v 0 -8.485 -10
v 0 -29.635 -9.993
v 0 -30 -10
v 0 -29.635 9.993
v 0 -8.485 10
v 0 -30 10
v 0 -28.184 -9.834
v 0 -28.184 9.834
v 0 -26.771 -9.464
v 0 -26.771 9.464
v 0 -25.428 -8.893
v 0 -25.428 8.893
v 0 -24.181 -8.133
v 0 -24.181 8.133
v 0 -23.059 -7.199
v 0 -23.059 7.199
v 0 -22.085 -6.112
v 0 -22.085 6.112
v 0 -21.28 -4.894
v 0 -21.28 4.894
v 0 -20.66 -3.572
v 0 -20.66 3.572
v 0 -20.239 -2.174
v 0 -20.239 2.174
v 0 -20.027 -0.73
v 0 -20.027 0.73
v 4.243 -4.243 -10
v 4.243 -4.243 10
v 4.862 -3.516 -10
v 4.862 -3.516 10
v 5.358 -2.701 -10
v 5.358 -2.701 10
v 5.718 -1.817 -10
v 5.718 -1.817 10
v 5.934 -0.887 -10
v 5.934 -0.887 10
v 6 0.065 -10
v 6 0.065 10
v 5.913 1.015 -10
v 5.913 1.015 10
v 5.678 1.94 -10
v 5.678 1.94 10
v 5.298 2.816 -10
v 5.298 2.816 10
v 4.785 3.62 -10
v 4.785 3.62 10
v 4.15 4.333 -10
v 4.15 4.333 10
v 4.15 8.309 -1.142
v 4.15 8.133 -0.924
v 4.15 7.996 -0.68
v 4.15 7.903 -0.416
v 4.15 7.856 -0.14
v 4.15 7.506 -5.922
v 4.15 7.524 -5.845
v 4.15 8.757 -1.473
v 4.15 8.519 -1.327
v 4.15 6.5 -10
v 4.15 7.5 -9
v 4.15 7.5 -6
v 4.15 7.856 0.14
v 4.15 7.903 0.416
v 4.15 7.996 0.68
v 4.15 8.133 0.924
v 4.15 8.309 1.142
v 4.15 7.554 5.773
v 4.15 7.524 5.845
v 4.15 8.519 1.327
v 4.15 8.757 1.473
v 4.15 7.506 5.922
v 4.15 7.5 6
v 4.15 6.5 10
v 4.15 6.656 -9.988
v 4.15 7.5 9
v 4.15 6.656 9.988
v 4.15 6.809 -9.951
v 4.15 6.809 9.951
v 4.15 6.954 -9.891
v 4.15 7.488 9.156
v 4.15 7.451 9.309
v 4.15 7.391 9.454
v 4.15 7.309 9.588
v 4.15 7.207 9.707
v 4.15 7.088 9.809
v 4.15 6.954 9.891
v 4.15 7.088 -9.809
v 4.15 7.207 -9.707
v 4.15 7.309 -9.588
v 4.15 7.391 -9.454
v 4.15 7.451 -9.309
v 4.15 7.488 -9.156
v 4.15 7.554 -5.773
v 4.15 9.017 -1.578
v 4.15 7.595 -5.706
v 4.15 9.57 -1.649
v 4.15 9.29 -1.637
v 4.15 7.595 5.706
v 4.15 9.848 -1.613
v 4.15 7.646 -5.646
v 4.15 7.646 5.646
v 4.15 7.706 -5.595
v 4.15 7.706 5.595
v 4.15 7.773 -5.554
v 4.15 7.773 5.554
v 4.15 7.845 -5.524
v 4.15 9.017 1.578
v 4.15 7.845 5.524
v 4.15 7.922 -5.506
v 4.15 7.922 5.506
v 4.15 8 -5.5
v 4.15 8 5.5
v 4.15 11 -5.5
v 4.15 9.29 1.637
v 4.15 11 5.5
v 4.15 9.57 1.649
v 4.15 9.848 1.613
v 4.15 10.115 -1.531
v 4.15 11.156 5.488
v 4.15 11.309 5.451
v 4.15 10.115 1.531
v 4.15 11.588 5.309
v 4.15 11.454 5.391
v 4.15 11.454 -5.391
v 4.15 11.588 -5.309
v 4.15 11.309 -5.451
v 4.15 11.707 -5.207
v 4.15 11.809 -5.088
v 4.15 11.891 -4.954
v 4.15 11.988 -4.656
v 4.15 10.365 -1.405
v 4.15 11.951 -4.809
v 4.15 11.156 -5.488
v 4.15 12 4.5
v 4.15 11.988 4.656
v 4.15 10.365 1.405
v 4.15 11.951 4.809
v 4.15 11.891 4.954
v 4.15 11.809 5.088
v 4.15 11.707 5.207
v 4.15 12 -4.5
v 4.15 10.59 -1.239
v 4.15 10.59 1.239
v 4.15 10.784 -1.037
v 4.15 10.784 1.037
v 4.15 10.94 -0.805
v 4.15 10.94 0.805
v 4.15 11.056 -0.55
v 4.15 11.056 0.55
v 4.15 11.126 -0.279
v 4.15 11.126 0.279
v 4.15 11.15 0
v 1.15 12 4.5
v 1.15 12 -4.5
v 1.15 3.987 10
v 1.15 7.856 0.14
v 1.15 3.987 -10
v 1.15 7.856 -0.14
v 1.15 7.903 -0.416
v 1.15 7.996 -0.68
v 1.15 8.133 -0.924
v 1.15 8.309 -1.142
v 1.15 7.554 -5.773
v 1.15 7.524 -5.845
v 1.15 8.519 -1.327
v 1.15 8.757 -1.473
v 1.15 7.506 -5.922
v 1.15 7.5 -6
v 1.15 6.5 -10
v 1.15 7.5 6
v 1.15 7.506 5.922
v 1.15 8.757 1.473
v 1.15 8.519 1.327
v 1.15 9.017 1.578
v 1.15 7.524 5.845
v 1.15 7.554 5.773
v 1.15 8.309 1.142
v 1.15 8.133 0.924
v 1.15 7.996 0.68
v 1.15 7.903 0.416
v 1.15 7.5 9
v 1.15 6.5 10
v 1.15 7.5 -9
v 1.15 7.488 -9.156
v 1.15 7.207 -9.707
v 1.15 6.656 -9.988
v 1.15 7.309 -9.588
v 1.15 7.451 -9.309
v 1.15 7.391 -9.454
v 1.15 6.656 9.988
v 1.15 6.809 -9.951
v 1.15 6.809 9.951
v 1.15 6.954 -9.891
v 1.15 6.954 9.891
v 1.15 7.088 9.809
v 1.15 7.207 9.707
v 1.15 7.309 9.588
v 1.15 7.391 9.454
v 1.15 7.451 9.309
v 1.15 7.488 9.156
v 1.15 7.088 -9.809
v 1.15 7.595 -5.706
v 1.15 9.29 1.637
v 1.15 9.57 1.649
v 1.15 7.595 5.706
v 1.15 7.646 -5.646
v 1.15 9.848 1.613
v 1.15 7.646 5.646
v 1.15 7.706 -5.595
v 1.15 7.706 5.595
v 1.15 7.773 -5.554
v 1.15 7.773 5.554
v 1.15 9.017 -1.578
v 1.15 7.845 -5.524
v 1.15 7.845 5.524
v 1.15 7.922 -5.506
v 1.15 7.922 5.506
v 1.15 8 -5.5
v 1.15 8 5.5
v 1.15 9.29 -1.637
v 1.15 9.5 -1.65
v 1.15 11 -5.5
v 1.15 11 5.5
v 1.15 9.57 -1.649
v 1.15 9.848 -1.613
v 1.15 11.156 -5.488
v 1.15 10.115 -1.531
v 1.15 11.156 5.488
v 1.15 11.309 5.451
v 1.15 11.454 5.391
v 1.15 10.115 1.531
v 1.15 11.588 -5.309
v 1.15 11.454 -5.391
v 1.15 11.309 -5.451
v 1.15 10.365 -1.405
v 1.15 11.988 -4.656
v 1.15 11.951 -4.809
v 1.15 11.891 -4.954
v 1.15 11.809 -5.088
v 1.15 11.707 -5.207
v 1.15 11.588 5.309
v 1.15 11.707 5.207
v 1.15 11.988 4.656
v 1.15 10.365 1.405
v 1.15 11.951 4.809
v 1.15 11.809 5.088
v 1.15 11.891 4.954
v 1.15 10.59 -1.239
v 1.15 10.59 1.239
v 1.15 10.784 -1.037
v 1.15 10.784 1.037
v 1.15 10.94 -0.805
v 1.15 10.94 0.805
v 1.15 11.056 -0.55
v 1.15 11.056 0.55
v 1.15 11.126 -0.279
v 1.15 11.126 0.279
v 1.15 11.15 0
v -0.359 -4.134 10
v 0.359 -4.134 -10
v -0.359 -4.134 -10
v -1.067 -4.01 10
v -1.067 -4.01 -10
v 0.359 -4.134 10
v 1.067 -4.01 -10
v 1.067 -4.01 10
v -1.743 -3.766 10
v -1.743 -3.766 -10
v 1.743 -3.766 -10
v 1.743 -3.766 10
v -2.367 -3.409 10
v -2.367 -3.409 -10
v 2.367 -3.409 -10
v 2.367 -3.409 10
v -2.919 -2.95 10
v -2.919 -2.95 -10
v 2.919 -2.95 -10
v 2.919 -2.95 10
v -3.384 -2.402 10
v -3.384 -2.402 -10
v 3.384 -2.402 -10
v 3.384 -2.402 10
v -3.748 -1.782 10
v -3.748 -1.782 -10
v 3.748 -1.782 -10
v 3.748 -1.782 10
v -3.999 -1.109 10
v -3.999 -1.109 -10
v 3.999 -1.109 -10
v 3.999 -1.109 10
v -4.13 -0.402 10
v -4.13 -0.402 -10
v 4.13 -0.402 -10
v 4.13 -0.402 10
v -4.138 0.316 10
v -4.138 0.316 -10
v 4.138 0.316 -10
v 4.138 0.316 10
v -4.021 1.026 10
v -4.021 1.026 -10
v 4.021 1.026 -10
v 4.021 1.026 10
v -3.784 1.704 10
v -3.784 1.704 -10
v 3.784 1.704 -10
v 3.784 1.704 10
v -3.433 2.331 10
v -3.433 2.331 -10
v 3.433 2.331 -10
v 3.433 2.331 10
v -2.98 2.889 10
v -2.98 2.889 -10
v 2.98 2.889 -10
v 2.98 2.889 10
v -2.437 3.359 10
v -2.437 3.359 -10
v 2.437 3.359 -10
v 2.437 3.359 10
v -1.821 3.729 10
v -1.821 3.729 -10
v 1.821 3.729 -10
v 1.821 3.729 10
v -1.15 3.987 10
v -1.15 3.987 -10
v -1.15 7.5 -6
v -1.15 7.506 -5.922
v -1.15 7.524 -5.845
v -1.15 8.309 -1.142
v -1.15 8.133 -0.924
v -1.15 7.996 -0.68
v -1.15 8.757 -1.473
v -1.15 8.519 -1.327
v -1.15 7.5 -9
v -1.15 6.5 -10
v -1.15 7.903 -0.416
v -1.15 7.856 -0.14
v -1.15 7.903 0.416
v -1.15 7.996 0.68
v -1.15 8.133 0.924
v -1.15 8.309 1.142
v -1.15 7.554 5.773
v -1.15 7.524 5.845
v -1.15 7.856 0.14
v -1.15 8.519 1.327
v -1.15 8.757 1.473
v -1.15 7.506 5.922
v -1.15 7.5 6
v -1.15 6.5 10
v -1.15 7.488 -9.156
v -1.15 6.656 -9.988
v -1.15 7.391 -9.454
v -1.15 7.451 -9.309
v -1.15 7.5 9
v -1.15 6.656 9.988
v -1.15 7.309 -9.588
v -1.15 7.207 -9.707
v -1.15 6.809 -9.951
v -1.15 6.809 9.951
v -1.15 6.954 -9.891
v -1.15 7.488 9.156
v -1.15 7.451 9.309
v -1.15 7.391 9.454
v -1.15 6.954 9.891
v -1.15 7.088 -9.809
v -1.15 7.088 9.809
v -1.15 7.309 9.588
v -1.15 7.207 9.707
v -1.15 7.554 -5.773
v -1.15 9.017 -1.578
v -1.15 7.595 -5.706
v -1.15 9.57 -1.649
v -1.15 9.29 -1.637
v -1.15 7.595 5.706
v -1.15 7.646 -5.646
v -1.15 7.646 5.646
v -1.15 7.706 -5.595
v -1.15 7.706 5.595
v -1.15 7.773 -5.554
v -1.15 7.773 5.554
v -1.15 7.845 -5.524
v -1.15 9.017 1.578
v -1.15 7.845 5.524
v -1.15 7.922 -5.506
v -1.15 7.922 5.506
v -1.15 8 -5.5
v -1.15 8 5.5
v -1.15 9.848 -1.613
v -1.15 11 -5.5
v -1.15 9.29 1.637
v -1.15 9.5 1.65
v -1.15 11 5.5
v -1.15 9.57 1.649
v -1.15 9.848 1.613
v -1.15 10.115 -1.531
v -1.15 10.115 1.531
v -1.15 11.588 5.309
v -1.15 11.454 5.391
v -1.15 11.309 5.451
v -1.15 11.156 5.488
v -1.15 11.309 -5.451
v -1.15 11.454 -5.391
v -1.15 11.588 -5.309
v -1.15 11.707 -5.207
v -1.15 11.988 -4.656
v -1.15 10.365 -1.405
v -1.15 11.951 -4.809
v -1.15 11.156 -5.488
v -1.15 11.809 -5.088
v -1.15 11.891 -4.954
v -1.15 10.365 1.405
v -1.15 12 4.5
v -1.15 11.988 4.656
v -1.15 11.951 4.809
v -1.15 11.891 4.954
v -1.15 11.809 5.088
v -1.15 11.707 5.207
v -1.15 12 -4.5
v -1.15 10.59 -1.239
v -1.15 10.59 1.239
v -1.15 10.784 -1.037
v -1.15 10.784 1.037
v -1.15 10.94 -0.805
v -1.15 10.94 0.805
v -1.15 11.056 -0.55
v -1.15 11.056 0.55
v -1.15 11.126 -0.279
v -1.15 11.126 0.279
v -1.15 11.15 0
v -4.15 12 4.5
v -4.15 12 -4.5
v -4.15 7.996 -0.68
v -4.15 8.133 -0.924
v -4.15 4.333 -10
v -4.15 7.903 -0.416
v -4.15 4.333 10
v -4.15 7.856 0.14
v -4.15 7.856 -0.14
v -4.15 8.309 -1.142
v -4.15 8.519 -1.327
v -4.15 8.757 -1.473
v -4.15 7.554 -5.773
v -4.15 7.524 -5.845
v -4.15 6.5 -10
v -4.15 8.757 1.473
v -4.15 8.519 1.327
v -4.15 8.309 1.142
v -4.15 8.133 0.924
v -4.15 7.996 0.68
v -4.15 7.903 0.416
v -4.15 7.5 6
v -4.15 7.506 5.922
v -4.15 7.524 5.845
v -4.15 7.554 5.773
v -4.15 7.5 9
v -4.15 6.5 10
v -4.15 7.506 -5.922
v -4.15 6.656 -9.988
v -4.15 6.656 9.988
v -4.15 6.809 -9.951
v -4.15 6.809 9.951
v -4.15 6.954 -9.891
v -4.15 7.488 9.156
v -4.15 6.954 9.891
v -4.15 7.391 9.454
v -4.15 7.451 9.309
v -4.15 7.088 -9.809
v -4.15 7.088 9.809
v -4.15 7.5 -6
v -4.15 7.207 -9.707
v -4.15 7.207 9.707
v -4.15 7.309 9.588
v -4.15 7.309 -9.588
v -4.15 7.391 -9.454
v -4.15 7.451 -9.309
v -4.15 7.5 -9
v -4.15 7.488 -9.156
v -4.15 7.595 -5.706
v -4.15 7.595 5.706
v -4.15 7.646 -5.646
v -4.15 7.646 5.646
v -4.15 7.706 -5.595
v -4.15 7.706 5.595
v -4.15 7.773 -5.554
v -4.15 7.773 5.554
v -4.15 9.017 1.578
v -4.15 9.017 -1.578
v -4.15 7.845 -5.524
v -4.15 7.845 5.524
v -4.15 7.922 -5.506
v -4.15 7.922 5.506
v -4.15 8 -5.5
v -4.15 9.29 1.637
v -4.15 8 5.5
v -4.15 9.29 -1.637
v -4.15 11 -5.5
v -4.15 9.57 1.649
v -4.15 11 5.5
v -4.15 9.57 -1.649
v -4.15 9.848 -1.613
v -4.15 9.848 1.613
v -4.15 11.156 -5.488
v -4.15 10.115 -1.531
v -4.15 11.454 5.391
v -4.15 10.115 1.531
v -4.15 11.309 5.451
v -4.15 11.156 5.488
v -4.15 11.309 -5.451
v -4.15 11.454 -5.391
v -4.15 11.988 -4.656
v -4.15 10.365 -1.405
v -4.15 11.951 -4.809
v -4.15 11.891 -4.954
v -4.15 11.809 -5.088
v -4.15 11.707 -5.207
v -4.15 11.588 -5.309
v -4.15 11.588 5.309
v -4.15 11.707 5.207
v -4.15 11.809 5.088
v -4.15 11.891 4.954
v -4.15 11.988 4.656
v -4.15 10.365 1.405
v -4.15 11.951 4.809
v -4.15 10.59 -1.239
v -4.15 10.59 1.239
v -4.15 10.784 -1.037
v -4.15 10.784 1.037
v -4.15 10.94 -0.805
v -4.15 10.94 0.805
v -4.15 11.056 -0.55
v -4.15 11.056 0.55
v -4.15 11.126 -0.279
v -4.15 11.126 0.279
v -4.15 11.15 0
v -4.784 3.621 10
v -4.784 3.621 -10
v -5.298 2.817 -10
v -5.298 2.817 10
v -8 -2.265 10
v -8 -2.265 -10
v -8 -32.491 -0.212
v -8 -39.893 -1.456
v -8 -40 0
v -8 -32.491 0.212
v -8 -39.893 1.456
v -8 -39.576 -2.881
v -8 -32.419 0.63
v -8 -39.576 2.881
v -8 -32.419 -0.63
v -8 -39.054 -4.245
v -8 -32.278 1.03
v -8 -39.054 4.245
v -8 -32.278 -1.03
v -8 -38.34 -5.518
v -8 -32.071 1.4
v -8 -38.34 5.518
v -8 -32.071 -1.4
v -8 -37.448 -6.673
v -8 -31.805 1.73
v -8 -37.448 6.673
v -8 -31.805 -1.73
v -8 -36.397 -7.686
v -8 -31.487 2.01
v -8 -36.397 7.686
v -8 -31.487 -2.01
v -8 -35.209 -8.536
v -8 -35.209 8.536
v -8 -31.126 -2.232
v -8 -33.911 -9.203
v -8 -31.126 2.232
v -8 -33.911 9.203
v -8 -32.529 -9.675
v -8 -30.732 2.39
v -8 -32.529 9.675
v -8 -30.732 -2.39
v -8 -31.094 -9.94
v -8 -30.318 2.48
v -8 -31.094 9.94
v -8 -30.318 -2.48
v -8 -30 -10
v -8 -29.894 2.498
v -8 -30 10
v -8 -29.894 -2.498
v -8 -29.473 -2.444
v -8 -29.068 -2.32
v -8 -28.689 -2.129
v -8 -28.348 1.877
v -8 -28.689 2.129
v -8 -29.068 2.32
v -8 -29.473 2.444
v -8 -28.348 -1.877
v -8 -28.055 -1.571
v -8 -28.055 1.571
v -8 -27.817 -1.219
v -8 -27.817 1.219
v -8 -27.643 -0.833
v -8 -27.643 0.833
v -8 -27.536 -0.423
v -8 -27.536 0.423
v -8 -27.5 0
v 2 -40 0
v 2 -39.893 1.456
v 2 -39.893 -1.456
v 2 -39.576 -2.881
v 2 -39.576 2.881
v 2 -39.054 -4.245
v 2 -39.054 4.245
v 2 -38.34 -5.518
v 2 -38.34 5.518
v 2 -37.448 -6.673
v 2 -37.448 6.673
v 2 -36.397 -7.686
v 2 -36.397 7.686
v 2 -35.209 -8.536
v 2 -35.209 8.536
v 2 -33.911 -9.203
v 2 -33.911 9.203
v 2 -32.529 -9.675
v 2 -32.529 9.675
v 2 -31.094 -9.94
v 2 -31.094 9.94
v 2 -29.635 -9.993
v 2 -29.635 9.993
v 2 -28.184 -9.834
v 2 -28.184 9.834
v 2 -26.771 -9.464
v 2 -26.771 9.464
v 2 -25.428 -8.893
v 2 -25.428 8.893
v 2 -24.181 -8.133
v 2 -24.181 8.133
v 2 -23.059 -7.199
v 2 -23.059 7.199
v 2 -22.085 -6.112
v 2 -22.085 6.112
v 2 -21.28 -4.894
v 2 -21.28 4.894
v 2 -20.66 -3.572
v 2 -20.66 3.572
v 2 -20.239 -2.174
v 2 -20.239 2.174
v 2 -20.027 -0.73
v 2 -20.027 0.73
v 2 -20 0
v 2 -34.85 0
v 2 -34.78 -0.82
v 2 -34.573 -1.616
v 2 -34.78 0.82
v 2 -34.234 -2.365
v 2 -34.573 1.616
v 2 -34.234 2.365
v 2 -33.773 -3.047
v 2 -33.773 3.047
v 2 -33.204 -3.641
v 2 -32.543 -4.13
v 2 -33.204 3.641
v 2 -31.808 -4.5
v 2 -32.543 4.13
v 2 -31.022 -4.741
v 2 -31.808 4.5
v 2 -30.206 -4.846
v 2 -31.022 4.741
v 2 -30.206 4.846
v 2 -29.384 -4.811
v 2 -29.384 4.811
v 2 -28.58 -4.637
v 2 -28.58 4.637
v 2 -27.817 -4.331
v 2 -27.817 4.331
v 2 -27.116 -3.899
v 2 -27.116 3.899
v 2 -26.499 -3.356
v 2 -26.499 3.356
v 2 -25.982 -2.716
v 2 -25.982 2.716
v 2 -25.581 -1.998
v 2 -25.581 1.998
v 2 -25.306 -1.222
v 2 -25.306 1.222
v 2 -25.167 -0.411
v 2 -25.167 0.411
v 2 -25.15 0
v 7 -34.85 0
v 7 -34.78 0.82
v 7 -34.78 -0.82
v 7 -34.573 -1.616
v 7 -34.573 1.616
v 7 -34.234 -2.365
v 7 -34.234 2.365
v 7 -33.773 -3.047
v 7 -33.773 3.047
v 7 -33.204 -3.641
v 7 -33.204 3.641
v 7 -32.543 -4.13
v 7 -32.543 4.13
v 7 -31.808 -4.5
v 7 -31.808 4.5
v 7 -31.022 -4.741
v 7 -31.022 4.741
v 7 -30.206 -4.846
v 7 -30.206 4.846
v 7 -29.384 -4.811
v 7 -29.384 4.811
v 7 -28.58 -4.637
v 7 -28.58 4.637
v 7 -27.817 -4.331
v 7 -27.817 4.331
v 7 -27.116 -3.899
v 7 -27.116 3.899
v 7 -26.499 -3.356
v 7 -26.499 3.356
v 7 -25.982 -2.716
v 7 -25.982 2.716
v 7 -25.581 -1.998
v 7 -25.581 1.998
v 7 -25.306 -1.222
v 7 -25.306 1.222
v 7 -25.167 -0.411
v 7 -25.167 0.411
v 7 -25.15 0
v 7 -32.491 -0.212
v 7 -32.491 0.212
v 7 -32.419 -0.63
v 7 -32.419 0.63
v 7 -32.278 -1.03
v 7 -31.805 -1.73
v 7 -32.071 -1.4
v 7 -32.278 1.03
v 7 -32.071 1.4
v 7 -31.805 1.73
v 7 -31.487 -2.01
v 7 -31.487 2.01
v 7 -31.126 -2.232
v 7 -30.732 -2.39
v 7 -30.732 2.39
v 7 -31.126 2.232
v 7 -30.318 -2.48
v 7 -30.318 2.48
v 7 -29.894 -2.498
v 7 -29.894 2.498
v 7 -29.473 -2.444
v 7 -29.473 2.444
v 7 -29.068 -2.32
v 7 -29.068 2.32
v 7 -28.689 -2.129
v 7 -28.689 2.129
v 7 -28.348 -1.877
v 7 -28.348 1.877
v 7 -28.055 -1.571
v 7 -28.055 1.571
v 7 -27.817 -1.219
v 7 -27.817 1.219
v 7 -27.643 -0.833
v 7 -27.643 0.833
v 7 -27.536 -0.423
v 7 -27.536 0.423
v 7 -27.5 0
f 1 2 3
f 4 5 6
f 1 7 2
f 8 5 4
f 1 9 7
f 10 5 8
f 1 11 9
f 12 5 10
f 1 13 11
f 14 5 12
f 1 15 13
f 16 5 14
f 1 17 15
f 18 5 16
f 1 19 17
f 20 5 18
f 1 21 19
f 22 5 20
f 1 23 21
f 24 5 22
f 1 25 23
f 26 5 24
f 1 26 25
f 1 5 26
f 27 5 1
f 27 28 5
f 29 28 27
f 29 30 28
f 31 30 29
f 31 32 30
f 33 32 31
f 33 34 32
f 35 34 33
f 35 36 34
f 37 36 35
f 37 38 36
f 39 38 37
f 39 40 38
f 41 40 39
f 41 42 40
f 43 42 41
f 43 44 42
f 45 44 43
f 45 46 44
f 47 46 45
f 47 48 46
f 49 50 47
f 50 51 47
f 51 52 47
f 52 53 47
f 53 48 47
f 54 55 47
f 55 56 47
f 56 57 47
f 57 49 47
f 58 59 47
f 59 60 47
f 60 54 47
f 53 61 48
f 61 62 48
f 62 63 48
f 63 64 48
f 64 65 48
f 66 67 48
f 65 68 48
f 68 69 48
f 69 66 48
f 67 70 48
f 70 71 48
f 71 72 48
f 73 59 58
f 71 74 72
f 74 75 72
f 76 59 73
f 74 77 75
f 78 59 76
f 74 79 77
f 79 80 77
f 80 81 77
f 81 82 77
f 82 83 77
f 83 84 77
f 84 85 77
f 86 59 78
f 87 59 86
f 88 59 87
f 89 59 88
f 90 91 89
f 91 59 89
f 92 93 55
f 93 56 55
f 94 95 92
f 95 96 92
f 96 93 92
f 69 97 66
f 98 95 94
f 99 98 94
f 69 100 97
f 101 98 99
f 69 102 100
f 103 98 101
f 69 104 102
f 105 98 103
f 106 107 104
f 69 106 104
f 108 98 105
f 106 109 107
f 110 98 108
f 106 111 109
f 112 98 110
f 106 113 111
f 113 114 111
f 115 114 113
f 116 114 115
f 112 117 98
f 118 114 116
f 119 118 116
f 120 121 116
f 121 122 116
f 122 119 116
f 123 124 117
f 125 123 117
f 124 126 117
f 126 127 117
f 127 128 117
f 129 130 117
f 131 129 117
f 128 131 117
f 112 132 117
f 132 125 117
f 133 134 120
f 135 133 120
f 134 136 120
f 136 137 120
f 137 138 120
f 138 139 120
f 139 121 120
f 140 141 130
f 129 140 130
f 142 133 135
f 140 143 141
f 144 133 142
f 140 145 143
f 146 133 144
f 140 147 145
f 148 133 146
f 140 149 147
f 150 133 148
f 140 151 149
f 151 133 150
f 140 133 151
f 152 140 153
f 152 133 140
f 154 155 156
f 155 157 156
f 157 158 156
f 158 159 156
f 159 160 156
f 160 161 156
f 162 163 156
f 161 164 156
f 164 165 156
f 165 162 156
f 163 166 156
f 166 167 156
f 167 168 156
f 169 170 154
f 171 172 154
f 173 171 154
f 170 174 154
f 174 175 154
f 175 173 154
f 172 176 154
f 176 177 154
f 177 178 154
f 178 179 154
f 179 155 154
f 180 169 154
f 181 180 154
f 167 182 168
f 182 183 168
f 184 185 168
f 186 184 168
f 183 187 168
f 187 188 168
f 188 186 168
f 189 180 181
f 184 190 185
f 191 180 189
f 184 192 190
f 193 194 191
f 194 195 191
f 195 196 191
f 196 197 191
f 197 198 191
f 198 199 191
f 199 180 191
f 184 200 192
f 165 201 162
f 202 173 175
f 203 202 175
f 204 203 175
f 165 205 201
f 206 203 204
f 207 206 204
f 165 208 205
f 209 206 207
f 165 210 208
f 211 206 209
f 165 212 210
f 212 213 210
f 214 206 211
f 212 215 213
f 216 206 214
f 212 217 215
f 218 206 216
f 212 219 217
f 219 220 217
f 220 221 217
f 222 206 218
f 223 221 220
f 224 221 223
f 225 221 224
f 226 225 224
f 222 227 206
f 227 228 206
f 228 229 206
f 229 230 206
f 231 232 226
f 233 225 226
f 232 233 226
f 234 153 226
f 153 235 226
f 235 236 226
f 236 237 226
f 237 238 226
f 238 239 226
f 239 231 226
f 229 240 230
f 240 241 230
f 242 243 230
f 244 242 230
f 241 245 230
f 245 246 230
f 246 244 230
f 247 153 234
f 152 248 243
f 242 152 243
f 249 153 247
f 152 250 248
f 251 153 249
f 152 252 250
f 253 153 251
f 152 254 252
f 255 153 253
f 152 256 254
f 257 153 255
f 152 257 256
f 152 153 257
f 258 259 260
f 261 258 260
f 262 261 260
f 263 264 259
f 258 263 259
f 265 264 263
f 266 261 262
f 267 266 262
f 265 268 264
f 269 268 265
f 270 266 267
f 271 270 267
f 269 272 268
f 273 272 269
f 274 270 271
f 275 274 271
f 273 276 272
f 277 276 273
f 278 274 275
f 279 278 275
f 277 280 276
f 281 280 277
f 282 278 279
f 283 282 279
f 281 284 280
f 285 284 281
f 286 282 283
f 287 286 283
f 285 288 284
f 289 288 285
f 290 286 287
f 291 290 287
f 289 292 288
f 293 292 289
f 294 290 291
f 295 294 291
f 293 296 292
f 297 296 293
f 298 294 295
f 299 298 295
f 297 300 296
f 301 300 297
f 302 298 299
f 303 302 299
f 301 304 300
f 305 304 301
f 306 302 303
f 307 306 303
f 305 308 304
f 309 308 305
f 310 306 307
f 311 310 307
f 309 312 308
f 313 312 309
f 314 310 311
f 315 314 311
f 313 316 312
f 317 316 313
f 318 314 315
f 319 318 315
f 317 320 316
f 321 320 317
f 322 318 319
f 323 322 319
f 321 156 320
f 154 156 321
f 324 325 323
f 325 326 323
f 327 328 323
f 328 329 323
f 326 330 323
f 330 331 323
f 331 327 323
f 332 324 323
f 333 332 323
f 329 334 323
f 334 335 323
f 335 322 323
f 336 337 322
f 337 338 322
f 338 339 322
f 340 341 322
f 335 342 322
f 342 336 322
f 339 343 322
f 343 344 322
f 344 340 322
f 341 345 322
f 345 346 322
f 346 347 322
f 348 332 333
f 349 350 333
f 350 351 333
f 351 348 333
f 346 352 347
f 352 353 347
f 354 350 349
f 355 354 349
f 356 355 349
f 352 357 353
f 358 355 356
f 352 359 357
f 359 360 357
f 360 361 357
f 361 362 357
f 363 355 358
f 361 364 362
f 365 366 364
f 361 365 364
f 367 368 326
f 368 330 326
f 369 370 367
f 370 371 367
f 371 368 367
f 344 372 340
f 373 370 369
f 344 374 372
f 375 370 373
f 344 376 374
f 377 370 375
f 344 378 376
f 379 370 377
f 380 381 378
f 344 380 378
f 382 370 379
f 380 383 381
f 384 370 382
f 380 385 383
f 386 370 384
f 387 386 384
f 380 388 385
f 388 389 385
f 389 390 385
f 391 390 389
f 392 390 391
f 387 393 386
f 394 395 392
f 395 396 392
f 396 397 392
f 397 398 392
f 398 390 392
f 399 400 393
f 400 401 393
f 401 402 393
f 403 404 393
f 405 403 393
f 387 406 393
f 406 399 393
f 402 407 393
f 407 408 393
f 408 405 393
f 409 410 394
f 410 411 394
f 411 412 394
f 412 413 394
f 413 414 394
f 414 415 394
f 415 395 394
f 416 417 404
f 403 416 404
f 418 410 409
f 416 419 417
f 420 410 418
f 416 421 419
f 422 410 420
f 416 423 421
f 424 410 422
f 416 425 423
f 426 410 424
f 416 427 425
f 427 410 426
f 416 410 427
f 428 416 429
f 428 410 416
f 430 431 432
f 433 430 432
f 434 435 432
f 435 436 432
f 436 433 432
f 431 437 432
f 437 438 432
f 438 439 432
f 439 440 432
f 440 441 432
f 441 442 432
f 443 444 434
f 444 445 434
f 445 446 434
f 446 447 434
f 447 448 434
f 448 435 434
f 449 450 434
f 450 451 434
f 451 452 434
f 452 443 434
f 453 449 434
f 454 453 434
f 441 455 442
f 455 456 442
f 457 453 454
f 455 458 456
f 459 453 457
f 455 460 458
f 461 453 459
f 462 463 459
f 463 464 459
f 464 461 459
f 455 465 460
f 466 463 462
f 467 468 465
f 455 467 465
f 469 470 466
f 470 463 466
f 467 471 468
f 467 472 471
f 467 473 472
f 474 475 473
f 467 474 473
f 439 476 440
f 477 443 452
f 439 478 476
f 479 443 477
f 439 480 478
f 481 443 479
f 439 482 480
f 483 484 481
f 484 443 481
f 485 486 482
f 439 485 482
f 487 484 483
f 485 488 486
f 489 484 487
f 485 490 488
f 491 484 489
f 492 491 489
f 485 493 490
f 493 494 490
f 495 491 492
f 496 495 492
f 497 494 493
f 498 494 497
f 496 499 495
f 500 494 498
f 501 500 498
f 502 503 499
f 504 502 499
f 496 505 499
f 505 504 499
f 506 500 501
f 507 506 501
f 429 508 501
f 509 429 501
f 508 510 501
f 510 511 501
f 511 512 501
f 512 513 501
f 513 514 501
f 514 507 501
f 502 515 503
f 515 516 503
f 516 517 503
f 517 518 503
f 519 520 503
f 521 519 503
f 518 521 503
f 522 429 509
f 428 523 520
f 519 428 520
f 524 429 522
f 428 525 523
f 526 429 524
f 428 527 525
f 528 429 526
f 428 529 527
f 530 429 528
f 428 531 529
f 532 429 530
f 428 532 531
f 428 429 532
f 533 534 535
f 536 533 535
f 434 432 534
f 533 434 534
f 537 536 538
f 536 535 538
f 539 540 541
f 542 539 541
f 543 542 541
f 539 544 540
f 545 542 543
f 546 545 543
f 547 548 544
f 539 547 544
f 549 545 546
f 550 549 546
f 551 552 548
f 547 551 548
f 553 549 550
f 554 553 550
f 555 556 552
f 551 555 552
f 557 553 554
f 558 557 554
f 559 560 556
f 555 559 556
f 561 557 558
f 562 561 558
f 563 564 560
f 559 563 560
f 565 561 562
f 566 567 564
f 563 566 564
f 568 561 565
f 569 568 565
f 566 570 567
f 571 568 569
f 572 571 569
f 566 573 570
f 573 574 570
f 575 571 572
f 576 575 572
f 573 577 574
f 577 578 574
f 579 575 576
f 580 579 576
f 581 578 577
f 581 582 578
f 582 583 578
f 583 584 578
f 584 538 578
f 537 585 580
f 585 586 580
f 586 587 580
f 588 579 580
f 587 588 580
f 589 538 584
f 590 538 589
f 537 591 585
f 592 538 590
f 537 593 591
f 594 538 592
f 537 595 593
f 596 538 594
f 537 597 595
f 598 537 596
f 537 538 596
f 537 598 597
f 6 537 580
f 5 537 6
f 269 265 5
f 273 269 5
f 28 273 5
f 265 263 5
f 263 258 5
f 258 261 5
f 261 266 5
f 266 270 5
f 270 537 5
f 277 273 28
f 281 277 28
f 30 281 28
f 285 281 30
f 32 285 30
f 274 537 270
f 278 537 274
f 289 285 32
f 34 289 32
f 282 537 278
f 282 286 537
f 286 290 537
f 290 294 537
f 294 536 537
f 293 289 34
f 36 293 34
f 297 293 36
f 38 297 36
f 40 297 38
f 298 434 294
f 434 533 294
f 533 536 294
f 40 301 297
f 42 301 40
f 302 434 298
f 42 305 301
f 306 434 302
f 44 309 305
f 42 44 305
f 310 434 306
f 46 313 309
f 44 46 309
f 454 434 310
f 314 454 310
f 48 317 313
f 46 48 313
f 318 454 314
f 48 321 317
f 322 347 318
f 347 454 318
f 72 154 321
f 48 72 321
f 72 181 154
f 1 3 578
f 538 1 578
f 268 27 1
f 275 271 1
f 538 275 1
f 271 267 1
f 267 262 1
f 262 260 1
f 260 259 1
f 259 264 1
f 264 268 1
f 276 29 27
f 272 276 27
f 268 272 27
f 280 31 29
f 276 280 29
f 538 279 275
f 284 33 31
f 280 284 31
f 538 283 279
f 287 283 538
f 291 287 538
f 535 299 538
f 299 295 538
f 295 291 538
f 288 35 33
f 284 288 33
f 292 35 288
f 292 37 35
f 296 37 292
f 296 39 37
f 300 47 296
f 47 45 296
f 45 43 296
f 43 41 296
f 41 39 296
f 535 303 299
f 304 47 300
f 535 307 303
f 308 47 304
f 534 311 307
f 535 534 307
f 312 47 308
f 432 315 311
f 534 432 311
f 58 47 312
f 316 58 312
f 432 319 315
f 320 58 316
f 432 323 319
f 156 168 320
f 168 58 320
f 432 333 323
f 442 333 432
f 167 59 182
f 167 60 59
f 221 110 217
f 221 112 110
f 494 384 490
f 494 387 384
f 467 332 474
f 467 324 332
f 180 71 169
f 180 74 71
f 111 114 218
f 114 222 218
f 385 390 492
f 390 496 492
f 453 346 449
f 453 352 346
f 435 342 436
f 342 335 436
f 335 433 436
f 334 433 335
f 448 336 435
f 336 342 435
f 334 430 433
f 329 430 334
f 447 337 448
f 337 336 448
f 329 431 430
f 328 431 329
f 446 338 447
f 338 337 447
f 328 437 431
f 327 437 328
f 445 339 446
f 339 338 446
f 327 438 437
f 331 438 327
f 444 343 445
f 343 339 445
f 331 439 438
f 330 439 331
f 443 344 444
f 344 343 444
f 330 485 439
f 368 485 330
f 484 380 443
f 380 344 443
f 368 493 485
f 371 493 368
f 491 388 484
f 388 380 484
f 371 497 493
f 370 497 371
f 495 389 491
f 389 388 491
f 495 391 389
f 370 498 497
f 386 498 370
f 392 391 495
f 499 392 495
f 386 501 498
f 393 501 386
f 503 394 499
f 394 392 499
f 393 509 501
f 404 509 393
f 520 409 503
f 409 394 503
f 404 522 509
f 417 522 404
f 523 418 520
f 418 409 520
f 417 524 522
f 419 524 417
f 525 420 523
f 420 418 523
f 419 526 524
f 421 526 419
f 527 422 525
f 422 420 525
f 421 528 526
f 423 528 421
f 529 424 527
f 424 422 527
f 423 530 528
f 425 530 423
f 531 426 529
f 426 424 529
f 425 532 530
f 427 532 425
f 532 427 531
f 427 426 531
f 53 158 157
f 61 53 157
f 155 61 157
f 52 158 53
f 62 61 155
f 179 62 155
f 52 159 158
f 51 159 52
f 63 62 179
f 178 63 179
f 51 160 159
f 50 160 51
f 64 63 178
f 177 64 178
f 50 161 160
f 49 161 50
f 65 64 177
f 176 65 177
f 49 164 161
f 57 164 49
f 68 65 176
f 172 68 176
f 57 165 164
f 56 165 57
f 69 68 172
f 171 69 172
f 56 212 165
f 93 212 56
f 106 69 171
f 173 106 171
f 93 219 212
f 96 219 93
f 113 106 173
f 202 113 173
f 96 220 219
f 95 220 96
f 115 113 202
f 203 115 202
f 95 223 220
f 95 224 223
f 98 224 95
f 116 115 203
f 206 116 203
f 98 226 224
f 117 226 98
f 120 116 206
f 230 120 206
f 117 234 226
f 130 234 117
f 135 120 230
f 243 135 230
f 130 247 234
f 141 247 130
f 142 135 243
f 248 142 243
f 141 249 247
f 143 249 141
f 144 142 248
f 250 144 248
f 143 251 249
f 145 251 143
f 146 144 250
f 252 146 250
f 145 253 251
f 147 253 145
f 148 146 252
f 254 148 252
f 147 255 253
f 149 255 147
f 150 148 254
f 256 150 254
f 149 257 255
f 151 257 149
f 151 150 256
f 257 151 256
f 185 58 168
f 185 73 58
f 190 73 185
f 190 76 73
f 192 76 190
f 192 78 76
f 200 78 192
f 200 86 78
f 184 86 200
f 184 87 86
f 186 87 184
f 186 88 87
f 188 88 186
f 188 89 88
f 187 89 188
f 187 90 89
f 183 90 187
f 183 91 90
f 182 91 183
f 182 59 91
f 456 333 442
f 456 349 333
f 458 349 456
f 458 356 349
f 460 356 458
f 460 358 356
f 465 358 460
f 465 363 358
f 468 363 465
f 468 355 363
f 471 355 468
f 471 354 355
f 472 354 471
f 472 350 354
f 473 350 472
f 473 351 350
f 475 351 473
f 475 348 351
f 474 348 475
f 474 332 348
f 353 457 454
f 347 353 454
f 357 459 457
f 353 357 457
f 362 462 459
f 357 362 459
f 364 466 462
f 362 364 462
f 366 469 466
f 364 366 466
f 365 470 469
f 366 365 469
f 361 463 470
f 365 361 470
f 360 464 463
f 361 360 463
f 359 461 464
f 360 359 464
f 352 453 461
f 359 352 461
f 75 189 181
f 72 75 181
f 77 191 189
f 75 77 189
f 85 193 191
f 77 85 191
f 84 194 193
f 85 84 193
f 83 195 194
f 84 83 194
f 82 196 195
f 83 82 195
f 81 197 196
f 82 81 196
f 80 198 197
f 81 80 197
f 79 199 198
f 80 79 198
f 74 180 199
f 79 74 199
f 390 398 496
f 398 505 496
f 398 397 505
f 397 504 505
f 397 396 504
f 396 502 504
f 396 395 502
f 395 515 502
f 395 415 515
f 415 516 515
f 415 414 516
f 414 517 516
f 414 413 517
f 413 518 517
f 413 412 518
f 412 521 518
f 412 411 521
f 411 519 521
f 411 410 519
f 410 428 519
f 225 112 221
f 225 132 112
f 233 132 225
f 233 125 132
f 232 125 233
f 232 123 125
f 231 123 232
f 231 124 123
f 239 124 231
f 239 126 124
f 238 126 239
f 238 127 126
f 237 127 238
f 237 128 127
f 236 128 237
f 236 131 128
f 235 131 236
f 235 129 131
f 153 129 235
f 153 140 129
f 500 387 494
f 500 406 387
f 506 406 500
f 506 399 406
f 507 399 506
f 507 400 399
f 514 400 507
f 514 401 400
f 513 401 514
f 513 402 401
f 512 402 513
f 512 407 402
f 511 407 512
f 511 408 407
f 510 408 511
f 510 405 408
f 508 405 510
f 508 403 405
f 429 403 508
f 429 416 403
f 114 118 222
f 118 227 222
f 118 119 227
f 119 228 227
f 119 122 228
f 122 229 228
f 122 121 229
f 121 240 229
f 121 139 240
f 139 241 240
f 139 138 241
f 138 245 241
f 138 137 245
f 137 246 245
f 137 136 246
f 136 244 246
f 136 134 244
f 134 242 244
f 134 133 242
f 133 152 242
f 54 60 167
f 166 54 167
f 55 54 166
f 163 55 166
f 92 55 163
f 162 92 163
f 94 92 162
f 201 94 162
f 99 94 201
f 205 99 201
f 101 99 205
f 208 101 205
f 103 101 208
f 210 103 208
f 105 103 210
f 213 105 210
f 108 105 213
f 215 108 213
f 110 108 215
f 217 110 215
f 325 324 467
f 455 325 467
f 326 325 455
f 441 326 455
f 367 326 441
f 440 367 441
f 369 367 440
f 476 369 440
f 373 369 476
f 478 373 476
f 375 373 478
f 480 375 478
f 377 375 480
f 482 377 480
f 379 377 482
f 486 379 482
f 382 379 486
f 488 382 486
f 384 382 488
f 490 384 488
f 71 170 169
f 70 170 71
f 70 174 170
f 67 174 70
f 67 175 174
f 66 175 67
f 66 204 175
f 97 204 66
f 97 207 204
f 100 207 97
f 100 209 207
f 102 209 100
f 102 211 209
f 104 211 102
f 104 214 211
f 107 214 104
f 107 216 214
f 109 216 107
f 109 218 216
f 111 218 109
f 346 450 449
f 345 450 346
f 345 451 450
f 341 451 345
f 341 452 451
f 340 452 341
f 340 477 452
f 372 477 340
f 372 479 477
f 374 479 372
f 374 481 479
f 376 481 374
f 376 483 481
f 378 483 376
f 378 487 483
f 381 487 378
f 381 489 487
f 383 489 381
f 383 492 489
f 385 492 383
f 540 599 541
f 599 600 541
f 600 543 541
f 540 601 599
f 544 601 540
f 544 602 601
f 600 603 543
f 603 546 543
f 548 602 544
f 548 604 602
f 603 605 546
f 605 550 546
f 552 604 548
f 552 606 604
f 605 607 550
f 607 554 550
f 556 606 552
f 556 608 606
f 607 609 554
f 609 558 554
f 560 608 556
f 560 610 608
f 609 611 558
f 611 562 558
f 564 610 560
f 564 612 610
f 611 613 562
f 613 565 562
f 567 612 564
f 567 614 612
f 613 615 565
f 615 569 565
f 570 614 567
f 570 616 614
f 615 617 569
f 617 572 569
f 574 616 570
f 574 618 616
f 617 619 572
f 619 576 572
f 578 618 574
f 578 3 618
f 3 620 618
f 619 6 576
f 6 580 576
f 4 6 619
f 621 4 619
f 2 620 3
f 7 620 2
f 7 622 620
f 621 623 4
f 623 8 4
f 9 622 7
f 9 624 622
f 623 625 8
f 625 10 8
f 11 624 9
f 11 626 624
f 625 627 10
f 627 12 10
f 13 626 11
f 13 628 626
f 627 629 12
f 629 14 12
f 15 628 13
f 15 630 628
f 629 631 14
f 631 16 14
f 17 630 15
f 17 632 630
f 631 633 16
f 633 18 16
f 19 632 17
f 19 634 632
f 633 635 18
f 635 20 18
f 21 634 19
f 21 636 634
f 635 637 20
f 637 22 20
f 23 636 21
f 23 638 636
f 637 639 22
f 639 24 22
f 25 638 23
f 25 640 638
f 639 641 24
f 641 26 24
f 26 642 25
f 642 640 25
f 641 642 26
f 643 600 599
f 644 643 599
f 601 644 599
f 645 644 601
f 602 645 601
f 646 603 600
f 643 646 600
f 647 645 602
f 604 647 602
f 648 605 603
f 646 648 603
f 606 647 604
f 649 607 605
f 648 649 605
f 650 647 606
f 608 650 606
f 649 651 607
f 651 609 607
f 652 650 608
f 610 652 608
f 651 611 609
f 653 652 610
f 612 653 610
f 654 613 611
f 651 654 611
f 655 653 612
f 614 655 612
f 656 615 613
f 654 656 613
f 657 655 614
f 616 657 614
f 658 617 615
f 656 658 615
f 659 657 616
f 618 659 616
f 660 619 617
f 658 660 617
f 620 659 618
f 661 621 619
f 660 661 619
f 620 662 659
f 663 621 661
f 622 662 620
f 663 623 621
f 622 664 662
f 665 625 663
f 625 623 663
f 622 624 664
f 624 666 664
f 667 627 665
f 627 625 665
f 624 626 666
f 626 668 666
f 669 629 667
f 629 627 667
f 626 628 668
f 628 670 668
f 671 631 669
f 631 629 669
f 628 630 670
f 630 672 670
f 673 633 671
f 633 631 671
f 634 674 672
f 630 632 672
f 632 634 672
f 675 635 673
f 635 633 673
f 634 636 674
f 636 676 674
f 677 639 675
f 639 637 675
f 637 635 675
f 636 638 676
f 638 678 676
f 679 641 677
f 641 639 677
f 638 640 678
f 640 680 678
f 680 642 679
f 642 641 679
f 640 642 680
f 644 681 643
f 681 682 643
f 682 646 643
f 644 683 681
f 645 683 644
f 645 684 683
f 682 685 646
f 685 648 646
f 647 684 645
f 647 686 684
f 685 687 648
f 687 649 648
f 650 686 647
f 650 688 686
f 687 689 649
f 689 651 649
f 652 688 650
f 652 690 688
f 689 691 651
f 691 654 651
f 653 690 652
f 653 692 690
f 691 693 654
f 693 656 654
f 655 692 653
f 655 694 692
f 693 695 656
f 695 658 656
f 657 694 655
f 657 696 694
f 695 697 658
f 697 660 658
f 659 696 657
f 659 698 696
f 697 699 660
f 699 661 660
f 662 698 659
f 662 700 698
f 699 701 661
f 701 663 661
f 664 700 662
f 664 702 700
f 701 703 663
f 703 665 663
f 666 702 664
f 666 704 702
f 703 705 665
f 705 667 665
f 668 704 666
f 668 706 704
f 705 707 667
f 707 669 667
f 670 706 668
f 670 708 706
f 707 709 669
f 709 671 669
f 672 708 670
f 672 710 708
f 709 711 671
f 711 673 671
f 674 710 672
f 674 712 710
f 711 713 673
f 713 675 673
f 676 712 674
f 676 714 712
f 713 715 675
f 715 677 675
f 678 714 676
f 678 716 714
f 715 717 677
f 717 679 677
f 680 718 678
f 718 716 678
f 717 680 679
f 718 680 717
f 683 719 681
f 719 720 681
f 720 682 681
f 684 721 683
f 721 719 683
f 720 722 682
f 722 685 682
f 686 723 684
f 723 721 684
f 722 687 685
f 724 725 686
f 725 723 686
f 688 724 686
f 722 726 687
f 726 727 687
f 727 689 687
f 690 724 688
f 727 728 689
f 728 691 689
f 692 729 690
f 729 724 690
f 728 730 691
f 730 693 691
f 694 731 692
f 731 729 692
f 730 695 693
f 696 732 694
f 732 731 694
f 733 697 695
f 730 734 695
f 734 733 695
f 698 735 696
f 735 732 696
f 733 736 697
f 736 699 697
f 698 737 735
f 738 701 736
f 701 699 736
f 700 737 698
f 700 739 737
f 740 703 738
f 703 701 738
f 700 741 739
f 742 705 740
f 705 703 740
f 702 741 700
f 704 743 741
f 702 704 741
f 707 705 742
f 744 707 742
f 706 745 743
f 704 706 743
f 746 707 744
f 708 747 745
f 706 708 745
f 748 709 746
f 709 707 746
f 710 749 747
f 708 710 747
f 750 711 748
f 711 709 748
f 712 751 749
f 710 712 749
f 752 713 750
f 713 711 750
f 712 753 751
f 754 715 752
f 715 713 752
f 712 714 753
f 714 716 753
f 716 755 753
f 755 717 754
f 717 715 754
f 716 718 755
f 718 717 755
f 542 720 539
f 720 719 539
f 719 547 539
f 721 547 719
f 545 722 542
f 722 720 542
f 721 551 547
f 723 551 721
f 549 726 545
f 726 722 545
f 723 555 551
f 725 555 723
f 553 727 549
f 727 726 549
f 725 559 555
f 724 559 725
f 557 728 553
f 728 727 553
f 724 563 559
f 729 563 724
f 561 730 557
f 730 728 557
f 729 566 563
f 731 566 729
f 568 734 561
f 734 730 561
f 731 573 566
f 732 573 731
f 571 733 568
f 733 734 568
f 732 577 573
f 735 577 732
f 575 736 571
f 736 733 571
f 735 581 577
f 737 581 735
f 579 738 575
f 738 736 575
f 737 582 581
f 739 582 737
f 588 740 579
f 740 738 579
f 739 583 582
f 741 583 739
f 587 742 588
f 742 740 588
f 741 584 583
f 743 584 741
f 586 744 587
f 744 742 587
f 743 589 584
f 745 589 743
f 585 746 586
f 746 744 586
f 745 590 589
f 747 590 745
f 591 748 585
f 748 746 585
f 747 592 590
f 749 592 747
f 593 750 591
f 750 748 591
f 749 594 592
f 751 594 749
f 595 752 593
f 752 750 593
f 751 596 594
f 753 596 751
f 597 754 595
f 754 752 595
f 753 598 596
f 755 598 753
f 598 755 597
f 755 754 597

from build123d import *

# Parameters (mm, degrees)
EXTRUDE_1_DEPTH             = 10
SKETCH_6_R                  = 1.65
SKETCH_6_W                  = 14.704506527
SKETCH_6_H                  = 8.520368268
CUT_EXTRUDE_2_DEPTH         = 34.876577454
FILLET_1_R                  = 1
FILLET_2_R                  = 0.5
EXTRUDE_2_REACH             = 34.619
SKETCH_7_R                  = 10
EXTRUDE_2_DIRECTION_2_DEPTH = 2
SKETCH_8_R                  = 4.85
EXTRUDE_3_DEPTH             = 5
SKETCH_9_R                  = 2.5
CUT_EXTRUDE_3_DEPTH         = 44.874821937


with BuildPart() as part:
    # 草图1 → 凸台-拉伸1 (new, symmetric)
    with BuildSketch(Plane.XY):
        with BuildLine():
            Line((-1.15, 3.987480407), (-1.15, 12))
            Line((-1.15, 12), (-4.15, 12))
            Line((-4.15, 12), (-4.15, 4.333301282))
            ThreePointArc((-4.15, 4.333301282), (-4.784308974, 3.620826928), (-5.297685557, 2.816829377))
            Line((-5.297685557, 2.816829377), (-8, -2.265484914))
            Line((-8, -2.265484914), (-8, -30))
            Line((-8, -30), (0, -30))
            Line((0, -30), (0, -8.485281374))
            Line((0, -8.485281374), (4.242640687, -4.242640687))
            ThreePointArc((4.242640687, -4.242640687), (5.999649956, 0.064810571), (4.15, 4.333301282))
            Line((4.15, 4.333301282), (4.15, 12))
            Line((4.15, 12), (1.15, 12))
            Line((1.15, 12), (1.15, 3.987480407))
            ThreePointArc((1.15, 3.987480407), (0, -4.15), (-1.15, 3.987480407))
        make_face()
    extrude(amount=EXTRUDE_1_DEPTH, both=True)

    # 草图6 → 切除-拉伸2 (cut, through all)
    with BuildSketch(Plane(origin=(4.15, 0, 0), x_dir=(0, 0, -1), z_dir=(1, 0, 0))):
        with Locations(Location((0, 9.5, 0), (0, 0, 90))):
            Circle(SKETCH_6_R)
        with Locations((-12.852253263, 11.760184134)):
            Rectangle(SKETCH_6_W, SKETCH_6_H)
        with Locations((12.852253263, 11.760184134)):
            Rectangle(SKETCH_6_W, SKETCH_6_H)
    extrude(amount=-CUT_EXTRUDE_2_DEPTH, mode=Mode.SUBTRACT)

    # 圆角1
    fillet_1_edges = [part.edges().sort_by_distance(p)[0] for p in [
        (2.65, 7.5, -10),
        (-2.65, 7.5, -10),
        (2.65, 7.5, 10),
        (-2.65, 7.5, 10),
        (2.65, 12, 5.5),
        (-2.65, 12, 5.5),
        (2.65, 12, -5.5),
        (-2.65, 12, -5.5),
    ]]
    fillet(fillet_1_edges, radius=FILLET_1_R)

    # 圆角2
    fillet_2_edges = [part.edges().sort_by_distance(p)[0] for p in [
        (-2.65, 7.5, 5.5),
        (2.65, 7.5, 5.5),
        (2.65, 7.5, -5.5),
        (-2.65, 7.5, -5.5),
    ]]
    fillet(fillet_2_edges, radius=FILLET_2_R)

    # 凸台-拉伸2: up to this face of the body (flat: up to its plane)
    extrude_2_end = Plane(part.part.faces().sort_by_distance((-8, -16.132742457, 0))[0])
    # 草图7 → 凸台-拉伸2 (add, up to the picked face)
    with BuildSketch(Plane(origin=(0, 0, 0), x_dir=(0, 0, -1), z_dir=(1, 0, 0)), mode=Mode.PRIVATE) as extrude_2_sk1:
        with Locations(Location((0, -30, 0), (0, 0, 180))):
            Circle(SKETCH_7_R)
    extrude_2_tool1 = split(extrude(extrude_2_sk1.sketch, amount=-EXTRUDE_2_REACH, mode=Mode.PRIVATE), bisect_by=extrude_2_end, keep=Keep.BOTH, mode=Mode.PRIVATE)
    add(extrude_2_tool1.solids().sort_by(Axis((0, -30, 0), (-1, 0, 0)))[0])

    # 草图7 → 凸台-拉伸2 direction 2 (add)
    with BuildSketch(Plane(origin=(0, 0, 0), x_dir=(0, 0, -1), z_dir=(1, 0, 0))):
        with Locations(Location((0, -30, 0), (0, 0, 180))):
            Circle(SKETCH_7_R)
    extrude(amount=EXTRUDE_2_DIRECTION_2_DEPTH)

    # 草图8 → 凸台-拉伸3 (add)
    with BuildSketch(Plane(origin=(2, 0, 0), x_dir=(0, 0, -1), z_dir=(1, 0, 0))):
        with Locations(Location((0, -30, 0), (0, 0, 90))):
            Circle(SKETCH_8_R)
    extrude(amount=EXTRUDE_3_DEPTH)

    # 草图9 → 切除-拉伸3 (cut, through all)
    with BuildSketch(Plane(origin=(7, 0, 0), x_dir=(0, 0, -1), z_dir=(1, 0, 0))):
        with Locations(Location((0, -30, 0), (0, 0, 90))):
            Circle(SKETCH_9_R)
    extrude(amount=-CUT_EXTRUDE_3_DEPTH, mode=Mode.SUBTRACT)


solid = part.part
